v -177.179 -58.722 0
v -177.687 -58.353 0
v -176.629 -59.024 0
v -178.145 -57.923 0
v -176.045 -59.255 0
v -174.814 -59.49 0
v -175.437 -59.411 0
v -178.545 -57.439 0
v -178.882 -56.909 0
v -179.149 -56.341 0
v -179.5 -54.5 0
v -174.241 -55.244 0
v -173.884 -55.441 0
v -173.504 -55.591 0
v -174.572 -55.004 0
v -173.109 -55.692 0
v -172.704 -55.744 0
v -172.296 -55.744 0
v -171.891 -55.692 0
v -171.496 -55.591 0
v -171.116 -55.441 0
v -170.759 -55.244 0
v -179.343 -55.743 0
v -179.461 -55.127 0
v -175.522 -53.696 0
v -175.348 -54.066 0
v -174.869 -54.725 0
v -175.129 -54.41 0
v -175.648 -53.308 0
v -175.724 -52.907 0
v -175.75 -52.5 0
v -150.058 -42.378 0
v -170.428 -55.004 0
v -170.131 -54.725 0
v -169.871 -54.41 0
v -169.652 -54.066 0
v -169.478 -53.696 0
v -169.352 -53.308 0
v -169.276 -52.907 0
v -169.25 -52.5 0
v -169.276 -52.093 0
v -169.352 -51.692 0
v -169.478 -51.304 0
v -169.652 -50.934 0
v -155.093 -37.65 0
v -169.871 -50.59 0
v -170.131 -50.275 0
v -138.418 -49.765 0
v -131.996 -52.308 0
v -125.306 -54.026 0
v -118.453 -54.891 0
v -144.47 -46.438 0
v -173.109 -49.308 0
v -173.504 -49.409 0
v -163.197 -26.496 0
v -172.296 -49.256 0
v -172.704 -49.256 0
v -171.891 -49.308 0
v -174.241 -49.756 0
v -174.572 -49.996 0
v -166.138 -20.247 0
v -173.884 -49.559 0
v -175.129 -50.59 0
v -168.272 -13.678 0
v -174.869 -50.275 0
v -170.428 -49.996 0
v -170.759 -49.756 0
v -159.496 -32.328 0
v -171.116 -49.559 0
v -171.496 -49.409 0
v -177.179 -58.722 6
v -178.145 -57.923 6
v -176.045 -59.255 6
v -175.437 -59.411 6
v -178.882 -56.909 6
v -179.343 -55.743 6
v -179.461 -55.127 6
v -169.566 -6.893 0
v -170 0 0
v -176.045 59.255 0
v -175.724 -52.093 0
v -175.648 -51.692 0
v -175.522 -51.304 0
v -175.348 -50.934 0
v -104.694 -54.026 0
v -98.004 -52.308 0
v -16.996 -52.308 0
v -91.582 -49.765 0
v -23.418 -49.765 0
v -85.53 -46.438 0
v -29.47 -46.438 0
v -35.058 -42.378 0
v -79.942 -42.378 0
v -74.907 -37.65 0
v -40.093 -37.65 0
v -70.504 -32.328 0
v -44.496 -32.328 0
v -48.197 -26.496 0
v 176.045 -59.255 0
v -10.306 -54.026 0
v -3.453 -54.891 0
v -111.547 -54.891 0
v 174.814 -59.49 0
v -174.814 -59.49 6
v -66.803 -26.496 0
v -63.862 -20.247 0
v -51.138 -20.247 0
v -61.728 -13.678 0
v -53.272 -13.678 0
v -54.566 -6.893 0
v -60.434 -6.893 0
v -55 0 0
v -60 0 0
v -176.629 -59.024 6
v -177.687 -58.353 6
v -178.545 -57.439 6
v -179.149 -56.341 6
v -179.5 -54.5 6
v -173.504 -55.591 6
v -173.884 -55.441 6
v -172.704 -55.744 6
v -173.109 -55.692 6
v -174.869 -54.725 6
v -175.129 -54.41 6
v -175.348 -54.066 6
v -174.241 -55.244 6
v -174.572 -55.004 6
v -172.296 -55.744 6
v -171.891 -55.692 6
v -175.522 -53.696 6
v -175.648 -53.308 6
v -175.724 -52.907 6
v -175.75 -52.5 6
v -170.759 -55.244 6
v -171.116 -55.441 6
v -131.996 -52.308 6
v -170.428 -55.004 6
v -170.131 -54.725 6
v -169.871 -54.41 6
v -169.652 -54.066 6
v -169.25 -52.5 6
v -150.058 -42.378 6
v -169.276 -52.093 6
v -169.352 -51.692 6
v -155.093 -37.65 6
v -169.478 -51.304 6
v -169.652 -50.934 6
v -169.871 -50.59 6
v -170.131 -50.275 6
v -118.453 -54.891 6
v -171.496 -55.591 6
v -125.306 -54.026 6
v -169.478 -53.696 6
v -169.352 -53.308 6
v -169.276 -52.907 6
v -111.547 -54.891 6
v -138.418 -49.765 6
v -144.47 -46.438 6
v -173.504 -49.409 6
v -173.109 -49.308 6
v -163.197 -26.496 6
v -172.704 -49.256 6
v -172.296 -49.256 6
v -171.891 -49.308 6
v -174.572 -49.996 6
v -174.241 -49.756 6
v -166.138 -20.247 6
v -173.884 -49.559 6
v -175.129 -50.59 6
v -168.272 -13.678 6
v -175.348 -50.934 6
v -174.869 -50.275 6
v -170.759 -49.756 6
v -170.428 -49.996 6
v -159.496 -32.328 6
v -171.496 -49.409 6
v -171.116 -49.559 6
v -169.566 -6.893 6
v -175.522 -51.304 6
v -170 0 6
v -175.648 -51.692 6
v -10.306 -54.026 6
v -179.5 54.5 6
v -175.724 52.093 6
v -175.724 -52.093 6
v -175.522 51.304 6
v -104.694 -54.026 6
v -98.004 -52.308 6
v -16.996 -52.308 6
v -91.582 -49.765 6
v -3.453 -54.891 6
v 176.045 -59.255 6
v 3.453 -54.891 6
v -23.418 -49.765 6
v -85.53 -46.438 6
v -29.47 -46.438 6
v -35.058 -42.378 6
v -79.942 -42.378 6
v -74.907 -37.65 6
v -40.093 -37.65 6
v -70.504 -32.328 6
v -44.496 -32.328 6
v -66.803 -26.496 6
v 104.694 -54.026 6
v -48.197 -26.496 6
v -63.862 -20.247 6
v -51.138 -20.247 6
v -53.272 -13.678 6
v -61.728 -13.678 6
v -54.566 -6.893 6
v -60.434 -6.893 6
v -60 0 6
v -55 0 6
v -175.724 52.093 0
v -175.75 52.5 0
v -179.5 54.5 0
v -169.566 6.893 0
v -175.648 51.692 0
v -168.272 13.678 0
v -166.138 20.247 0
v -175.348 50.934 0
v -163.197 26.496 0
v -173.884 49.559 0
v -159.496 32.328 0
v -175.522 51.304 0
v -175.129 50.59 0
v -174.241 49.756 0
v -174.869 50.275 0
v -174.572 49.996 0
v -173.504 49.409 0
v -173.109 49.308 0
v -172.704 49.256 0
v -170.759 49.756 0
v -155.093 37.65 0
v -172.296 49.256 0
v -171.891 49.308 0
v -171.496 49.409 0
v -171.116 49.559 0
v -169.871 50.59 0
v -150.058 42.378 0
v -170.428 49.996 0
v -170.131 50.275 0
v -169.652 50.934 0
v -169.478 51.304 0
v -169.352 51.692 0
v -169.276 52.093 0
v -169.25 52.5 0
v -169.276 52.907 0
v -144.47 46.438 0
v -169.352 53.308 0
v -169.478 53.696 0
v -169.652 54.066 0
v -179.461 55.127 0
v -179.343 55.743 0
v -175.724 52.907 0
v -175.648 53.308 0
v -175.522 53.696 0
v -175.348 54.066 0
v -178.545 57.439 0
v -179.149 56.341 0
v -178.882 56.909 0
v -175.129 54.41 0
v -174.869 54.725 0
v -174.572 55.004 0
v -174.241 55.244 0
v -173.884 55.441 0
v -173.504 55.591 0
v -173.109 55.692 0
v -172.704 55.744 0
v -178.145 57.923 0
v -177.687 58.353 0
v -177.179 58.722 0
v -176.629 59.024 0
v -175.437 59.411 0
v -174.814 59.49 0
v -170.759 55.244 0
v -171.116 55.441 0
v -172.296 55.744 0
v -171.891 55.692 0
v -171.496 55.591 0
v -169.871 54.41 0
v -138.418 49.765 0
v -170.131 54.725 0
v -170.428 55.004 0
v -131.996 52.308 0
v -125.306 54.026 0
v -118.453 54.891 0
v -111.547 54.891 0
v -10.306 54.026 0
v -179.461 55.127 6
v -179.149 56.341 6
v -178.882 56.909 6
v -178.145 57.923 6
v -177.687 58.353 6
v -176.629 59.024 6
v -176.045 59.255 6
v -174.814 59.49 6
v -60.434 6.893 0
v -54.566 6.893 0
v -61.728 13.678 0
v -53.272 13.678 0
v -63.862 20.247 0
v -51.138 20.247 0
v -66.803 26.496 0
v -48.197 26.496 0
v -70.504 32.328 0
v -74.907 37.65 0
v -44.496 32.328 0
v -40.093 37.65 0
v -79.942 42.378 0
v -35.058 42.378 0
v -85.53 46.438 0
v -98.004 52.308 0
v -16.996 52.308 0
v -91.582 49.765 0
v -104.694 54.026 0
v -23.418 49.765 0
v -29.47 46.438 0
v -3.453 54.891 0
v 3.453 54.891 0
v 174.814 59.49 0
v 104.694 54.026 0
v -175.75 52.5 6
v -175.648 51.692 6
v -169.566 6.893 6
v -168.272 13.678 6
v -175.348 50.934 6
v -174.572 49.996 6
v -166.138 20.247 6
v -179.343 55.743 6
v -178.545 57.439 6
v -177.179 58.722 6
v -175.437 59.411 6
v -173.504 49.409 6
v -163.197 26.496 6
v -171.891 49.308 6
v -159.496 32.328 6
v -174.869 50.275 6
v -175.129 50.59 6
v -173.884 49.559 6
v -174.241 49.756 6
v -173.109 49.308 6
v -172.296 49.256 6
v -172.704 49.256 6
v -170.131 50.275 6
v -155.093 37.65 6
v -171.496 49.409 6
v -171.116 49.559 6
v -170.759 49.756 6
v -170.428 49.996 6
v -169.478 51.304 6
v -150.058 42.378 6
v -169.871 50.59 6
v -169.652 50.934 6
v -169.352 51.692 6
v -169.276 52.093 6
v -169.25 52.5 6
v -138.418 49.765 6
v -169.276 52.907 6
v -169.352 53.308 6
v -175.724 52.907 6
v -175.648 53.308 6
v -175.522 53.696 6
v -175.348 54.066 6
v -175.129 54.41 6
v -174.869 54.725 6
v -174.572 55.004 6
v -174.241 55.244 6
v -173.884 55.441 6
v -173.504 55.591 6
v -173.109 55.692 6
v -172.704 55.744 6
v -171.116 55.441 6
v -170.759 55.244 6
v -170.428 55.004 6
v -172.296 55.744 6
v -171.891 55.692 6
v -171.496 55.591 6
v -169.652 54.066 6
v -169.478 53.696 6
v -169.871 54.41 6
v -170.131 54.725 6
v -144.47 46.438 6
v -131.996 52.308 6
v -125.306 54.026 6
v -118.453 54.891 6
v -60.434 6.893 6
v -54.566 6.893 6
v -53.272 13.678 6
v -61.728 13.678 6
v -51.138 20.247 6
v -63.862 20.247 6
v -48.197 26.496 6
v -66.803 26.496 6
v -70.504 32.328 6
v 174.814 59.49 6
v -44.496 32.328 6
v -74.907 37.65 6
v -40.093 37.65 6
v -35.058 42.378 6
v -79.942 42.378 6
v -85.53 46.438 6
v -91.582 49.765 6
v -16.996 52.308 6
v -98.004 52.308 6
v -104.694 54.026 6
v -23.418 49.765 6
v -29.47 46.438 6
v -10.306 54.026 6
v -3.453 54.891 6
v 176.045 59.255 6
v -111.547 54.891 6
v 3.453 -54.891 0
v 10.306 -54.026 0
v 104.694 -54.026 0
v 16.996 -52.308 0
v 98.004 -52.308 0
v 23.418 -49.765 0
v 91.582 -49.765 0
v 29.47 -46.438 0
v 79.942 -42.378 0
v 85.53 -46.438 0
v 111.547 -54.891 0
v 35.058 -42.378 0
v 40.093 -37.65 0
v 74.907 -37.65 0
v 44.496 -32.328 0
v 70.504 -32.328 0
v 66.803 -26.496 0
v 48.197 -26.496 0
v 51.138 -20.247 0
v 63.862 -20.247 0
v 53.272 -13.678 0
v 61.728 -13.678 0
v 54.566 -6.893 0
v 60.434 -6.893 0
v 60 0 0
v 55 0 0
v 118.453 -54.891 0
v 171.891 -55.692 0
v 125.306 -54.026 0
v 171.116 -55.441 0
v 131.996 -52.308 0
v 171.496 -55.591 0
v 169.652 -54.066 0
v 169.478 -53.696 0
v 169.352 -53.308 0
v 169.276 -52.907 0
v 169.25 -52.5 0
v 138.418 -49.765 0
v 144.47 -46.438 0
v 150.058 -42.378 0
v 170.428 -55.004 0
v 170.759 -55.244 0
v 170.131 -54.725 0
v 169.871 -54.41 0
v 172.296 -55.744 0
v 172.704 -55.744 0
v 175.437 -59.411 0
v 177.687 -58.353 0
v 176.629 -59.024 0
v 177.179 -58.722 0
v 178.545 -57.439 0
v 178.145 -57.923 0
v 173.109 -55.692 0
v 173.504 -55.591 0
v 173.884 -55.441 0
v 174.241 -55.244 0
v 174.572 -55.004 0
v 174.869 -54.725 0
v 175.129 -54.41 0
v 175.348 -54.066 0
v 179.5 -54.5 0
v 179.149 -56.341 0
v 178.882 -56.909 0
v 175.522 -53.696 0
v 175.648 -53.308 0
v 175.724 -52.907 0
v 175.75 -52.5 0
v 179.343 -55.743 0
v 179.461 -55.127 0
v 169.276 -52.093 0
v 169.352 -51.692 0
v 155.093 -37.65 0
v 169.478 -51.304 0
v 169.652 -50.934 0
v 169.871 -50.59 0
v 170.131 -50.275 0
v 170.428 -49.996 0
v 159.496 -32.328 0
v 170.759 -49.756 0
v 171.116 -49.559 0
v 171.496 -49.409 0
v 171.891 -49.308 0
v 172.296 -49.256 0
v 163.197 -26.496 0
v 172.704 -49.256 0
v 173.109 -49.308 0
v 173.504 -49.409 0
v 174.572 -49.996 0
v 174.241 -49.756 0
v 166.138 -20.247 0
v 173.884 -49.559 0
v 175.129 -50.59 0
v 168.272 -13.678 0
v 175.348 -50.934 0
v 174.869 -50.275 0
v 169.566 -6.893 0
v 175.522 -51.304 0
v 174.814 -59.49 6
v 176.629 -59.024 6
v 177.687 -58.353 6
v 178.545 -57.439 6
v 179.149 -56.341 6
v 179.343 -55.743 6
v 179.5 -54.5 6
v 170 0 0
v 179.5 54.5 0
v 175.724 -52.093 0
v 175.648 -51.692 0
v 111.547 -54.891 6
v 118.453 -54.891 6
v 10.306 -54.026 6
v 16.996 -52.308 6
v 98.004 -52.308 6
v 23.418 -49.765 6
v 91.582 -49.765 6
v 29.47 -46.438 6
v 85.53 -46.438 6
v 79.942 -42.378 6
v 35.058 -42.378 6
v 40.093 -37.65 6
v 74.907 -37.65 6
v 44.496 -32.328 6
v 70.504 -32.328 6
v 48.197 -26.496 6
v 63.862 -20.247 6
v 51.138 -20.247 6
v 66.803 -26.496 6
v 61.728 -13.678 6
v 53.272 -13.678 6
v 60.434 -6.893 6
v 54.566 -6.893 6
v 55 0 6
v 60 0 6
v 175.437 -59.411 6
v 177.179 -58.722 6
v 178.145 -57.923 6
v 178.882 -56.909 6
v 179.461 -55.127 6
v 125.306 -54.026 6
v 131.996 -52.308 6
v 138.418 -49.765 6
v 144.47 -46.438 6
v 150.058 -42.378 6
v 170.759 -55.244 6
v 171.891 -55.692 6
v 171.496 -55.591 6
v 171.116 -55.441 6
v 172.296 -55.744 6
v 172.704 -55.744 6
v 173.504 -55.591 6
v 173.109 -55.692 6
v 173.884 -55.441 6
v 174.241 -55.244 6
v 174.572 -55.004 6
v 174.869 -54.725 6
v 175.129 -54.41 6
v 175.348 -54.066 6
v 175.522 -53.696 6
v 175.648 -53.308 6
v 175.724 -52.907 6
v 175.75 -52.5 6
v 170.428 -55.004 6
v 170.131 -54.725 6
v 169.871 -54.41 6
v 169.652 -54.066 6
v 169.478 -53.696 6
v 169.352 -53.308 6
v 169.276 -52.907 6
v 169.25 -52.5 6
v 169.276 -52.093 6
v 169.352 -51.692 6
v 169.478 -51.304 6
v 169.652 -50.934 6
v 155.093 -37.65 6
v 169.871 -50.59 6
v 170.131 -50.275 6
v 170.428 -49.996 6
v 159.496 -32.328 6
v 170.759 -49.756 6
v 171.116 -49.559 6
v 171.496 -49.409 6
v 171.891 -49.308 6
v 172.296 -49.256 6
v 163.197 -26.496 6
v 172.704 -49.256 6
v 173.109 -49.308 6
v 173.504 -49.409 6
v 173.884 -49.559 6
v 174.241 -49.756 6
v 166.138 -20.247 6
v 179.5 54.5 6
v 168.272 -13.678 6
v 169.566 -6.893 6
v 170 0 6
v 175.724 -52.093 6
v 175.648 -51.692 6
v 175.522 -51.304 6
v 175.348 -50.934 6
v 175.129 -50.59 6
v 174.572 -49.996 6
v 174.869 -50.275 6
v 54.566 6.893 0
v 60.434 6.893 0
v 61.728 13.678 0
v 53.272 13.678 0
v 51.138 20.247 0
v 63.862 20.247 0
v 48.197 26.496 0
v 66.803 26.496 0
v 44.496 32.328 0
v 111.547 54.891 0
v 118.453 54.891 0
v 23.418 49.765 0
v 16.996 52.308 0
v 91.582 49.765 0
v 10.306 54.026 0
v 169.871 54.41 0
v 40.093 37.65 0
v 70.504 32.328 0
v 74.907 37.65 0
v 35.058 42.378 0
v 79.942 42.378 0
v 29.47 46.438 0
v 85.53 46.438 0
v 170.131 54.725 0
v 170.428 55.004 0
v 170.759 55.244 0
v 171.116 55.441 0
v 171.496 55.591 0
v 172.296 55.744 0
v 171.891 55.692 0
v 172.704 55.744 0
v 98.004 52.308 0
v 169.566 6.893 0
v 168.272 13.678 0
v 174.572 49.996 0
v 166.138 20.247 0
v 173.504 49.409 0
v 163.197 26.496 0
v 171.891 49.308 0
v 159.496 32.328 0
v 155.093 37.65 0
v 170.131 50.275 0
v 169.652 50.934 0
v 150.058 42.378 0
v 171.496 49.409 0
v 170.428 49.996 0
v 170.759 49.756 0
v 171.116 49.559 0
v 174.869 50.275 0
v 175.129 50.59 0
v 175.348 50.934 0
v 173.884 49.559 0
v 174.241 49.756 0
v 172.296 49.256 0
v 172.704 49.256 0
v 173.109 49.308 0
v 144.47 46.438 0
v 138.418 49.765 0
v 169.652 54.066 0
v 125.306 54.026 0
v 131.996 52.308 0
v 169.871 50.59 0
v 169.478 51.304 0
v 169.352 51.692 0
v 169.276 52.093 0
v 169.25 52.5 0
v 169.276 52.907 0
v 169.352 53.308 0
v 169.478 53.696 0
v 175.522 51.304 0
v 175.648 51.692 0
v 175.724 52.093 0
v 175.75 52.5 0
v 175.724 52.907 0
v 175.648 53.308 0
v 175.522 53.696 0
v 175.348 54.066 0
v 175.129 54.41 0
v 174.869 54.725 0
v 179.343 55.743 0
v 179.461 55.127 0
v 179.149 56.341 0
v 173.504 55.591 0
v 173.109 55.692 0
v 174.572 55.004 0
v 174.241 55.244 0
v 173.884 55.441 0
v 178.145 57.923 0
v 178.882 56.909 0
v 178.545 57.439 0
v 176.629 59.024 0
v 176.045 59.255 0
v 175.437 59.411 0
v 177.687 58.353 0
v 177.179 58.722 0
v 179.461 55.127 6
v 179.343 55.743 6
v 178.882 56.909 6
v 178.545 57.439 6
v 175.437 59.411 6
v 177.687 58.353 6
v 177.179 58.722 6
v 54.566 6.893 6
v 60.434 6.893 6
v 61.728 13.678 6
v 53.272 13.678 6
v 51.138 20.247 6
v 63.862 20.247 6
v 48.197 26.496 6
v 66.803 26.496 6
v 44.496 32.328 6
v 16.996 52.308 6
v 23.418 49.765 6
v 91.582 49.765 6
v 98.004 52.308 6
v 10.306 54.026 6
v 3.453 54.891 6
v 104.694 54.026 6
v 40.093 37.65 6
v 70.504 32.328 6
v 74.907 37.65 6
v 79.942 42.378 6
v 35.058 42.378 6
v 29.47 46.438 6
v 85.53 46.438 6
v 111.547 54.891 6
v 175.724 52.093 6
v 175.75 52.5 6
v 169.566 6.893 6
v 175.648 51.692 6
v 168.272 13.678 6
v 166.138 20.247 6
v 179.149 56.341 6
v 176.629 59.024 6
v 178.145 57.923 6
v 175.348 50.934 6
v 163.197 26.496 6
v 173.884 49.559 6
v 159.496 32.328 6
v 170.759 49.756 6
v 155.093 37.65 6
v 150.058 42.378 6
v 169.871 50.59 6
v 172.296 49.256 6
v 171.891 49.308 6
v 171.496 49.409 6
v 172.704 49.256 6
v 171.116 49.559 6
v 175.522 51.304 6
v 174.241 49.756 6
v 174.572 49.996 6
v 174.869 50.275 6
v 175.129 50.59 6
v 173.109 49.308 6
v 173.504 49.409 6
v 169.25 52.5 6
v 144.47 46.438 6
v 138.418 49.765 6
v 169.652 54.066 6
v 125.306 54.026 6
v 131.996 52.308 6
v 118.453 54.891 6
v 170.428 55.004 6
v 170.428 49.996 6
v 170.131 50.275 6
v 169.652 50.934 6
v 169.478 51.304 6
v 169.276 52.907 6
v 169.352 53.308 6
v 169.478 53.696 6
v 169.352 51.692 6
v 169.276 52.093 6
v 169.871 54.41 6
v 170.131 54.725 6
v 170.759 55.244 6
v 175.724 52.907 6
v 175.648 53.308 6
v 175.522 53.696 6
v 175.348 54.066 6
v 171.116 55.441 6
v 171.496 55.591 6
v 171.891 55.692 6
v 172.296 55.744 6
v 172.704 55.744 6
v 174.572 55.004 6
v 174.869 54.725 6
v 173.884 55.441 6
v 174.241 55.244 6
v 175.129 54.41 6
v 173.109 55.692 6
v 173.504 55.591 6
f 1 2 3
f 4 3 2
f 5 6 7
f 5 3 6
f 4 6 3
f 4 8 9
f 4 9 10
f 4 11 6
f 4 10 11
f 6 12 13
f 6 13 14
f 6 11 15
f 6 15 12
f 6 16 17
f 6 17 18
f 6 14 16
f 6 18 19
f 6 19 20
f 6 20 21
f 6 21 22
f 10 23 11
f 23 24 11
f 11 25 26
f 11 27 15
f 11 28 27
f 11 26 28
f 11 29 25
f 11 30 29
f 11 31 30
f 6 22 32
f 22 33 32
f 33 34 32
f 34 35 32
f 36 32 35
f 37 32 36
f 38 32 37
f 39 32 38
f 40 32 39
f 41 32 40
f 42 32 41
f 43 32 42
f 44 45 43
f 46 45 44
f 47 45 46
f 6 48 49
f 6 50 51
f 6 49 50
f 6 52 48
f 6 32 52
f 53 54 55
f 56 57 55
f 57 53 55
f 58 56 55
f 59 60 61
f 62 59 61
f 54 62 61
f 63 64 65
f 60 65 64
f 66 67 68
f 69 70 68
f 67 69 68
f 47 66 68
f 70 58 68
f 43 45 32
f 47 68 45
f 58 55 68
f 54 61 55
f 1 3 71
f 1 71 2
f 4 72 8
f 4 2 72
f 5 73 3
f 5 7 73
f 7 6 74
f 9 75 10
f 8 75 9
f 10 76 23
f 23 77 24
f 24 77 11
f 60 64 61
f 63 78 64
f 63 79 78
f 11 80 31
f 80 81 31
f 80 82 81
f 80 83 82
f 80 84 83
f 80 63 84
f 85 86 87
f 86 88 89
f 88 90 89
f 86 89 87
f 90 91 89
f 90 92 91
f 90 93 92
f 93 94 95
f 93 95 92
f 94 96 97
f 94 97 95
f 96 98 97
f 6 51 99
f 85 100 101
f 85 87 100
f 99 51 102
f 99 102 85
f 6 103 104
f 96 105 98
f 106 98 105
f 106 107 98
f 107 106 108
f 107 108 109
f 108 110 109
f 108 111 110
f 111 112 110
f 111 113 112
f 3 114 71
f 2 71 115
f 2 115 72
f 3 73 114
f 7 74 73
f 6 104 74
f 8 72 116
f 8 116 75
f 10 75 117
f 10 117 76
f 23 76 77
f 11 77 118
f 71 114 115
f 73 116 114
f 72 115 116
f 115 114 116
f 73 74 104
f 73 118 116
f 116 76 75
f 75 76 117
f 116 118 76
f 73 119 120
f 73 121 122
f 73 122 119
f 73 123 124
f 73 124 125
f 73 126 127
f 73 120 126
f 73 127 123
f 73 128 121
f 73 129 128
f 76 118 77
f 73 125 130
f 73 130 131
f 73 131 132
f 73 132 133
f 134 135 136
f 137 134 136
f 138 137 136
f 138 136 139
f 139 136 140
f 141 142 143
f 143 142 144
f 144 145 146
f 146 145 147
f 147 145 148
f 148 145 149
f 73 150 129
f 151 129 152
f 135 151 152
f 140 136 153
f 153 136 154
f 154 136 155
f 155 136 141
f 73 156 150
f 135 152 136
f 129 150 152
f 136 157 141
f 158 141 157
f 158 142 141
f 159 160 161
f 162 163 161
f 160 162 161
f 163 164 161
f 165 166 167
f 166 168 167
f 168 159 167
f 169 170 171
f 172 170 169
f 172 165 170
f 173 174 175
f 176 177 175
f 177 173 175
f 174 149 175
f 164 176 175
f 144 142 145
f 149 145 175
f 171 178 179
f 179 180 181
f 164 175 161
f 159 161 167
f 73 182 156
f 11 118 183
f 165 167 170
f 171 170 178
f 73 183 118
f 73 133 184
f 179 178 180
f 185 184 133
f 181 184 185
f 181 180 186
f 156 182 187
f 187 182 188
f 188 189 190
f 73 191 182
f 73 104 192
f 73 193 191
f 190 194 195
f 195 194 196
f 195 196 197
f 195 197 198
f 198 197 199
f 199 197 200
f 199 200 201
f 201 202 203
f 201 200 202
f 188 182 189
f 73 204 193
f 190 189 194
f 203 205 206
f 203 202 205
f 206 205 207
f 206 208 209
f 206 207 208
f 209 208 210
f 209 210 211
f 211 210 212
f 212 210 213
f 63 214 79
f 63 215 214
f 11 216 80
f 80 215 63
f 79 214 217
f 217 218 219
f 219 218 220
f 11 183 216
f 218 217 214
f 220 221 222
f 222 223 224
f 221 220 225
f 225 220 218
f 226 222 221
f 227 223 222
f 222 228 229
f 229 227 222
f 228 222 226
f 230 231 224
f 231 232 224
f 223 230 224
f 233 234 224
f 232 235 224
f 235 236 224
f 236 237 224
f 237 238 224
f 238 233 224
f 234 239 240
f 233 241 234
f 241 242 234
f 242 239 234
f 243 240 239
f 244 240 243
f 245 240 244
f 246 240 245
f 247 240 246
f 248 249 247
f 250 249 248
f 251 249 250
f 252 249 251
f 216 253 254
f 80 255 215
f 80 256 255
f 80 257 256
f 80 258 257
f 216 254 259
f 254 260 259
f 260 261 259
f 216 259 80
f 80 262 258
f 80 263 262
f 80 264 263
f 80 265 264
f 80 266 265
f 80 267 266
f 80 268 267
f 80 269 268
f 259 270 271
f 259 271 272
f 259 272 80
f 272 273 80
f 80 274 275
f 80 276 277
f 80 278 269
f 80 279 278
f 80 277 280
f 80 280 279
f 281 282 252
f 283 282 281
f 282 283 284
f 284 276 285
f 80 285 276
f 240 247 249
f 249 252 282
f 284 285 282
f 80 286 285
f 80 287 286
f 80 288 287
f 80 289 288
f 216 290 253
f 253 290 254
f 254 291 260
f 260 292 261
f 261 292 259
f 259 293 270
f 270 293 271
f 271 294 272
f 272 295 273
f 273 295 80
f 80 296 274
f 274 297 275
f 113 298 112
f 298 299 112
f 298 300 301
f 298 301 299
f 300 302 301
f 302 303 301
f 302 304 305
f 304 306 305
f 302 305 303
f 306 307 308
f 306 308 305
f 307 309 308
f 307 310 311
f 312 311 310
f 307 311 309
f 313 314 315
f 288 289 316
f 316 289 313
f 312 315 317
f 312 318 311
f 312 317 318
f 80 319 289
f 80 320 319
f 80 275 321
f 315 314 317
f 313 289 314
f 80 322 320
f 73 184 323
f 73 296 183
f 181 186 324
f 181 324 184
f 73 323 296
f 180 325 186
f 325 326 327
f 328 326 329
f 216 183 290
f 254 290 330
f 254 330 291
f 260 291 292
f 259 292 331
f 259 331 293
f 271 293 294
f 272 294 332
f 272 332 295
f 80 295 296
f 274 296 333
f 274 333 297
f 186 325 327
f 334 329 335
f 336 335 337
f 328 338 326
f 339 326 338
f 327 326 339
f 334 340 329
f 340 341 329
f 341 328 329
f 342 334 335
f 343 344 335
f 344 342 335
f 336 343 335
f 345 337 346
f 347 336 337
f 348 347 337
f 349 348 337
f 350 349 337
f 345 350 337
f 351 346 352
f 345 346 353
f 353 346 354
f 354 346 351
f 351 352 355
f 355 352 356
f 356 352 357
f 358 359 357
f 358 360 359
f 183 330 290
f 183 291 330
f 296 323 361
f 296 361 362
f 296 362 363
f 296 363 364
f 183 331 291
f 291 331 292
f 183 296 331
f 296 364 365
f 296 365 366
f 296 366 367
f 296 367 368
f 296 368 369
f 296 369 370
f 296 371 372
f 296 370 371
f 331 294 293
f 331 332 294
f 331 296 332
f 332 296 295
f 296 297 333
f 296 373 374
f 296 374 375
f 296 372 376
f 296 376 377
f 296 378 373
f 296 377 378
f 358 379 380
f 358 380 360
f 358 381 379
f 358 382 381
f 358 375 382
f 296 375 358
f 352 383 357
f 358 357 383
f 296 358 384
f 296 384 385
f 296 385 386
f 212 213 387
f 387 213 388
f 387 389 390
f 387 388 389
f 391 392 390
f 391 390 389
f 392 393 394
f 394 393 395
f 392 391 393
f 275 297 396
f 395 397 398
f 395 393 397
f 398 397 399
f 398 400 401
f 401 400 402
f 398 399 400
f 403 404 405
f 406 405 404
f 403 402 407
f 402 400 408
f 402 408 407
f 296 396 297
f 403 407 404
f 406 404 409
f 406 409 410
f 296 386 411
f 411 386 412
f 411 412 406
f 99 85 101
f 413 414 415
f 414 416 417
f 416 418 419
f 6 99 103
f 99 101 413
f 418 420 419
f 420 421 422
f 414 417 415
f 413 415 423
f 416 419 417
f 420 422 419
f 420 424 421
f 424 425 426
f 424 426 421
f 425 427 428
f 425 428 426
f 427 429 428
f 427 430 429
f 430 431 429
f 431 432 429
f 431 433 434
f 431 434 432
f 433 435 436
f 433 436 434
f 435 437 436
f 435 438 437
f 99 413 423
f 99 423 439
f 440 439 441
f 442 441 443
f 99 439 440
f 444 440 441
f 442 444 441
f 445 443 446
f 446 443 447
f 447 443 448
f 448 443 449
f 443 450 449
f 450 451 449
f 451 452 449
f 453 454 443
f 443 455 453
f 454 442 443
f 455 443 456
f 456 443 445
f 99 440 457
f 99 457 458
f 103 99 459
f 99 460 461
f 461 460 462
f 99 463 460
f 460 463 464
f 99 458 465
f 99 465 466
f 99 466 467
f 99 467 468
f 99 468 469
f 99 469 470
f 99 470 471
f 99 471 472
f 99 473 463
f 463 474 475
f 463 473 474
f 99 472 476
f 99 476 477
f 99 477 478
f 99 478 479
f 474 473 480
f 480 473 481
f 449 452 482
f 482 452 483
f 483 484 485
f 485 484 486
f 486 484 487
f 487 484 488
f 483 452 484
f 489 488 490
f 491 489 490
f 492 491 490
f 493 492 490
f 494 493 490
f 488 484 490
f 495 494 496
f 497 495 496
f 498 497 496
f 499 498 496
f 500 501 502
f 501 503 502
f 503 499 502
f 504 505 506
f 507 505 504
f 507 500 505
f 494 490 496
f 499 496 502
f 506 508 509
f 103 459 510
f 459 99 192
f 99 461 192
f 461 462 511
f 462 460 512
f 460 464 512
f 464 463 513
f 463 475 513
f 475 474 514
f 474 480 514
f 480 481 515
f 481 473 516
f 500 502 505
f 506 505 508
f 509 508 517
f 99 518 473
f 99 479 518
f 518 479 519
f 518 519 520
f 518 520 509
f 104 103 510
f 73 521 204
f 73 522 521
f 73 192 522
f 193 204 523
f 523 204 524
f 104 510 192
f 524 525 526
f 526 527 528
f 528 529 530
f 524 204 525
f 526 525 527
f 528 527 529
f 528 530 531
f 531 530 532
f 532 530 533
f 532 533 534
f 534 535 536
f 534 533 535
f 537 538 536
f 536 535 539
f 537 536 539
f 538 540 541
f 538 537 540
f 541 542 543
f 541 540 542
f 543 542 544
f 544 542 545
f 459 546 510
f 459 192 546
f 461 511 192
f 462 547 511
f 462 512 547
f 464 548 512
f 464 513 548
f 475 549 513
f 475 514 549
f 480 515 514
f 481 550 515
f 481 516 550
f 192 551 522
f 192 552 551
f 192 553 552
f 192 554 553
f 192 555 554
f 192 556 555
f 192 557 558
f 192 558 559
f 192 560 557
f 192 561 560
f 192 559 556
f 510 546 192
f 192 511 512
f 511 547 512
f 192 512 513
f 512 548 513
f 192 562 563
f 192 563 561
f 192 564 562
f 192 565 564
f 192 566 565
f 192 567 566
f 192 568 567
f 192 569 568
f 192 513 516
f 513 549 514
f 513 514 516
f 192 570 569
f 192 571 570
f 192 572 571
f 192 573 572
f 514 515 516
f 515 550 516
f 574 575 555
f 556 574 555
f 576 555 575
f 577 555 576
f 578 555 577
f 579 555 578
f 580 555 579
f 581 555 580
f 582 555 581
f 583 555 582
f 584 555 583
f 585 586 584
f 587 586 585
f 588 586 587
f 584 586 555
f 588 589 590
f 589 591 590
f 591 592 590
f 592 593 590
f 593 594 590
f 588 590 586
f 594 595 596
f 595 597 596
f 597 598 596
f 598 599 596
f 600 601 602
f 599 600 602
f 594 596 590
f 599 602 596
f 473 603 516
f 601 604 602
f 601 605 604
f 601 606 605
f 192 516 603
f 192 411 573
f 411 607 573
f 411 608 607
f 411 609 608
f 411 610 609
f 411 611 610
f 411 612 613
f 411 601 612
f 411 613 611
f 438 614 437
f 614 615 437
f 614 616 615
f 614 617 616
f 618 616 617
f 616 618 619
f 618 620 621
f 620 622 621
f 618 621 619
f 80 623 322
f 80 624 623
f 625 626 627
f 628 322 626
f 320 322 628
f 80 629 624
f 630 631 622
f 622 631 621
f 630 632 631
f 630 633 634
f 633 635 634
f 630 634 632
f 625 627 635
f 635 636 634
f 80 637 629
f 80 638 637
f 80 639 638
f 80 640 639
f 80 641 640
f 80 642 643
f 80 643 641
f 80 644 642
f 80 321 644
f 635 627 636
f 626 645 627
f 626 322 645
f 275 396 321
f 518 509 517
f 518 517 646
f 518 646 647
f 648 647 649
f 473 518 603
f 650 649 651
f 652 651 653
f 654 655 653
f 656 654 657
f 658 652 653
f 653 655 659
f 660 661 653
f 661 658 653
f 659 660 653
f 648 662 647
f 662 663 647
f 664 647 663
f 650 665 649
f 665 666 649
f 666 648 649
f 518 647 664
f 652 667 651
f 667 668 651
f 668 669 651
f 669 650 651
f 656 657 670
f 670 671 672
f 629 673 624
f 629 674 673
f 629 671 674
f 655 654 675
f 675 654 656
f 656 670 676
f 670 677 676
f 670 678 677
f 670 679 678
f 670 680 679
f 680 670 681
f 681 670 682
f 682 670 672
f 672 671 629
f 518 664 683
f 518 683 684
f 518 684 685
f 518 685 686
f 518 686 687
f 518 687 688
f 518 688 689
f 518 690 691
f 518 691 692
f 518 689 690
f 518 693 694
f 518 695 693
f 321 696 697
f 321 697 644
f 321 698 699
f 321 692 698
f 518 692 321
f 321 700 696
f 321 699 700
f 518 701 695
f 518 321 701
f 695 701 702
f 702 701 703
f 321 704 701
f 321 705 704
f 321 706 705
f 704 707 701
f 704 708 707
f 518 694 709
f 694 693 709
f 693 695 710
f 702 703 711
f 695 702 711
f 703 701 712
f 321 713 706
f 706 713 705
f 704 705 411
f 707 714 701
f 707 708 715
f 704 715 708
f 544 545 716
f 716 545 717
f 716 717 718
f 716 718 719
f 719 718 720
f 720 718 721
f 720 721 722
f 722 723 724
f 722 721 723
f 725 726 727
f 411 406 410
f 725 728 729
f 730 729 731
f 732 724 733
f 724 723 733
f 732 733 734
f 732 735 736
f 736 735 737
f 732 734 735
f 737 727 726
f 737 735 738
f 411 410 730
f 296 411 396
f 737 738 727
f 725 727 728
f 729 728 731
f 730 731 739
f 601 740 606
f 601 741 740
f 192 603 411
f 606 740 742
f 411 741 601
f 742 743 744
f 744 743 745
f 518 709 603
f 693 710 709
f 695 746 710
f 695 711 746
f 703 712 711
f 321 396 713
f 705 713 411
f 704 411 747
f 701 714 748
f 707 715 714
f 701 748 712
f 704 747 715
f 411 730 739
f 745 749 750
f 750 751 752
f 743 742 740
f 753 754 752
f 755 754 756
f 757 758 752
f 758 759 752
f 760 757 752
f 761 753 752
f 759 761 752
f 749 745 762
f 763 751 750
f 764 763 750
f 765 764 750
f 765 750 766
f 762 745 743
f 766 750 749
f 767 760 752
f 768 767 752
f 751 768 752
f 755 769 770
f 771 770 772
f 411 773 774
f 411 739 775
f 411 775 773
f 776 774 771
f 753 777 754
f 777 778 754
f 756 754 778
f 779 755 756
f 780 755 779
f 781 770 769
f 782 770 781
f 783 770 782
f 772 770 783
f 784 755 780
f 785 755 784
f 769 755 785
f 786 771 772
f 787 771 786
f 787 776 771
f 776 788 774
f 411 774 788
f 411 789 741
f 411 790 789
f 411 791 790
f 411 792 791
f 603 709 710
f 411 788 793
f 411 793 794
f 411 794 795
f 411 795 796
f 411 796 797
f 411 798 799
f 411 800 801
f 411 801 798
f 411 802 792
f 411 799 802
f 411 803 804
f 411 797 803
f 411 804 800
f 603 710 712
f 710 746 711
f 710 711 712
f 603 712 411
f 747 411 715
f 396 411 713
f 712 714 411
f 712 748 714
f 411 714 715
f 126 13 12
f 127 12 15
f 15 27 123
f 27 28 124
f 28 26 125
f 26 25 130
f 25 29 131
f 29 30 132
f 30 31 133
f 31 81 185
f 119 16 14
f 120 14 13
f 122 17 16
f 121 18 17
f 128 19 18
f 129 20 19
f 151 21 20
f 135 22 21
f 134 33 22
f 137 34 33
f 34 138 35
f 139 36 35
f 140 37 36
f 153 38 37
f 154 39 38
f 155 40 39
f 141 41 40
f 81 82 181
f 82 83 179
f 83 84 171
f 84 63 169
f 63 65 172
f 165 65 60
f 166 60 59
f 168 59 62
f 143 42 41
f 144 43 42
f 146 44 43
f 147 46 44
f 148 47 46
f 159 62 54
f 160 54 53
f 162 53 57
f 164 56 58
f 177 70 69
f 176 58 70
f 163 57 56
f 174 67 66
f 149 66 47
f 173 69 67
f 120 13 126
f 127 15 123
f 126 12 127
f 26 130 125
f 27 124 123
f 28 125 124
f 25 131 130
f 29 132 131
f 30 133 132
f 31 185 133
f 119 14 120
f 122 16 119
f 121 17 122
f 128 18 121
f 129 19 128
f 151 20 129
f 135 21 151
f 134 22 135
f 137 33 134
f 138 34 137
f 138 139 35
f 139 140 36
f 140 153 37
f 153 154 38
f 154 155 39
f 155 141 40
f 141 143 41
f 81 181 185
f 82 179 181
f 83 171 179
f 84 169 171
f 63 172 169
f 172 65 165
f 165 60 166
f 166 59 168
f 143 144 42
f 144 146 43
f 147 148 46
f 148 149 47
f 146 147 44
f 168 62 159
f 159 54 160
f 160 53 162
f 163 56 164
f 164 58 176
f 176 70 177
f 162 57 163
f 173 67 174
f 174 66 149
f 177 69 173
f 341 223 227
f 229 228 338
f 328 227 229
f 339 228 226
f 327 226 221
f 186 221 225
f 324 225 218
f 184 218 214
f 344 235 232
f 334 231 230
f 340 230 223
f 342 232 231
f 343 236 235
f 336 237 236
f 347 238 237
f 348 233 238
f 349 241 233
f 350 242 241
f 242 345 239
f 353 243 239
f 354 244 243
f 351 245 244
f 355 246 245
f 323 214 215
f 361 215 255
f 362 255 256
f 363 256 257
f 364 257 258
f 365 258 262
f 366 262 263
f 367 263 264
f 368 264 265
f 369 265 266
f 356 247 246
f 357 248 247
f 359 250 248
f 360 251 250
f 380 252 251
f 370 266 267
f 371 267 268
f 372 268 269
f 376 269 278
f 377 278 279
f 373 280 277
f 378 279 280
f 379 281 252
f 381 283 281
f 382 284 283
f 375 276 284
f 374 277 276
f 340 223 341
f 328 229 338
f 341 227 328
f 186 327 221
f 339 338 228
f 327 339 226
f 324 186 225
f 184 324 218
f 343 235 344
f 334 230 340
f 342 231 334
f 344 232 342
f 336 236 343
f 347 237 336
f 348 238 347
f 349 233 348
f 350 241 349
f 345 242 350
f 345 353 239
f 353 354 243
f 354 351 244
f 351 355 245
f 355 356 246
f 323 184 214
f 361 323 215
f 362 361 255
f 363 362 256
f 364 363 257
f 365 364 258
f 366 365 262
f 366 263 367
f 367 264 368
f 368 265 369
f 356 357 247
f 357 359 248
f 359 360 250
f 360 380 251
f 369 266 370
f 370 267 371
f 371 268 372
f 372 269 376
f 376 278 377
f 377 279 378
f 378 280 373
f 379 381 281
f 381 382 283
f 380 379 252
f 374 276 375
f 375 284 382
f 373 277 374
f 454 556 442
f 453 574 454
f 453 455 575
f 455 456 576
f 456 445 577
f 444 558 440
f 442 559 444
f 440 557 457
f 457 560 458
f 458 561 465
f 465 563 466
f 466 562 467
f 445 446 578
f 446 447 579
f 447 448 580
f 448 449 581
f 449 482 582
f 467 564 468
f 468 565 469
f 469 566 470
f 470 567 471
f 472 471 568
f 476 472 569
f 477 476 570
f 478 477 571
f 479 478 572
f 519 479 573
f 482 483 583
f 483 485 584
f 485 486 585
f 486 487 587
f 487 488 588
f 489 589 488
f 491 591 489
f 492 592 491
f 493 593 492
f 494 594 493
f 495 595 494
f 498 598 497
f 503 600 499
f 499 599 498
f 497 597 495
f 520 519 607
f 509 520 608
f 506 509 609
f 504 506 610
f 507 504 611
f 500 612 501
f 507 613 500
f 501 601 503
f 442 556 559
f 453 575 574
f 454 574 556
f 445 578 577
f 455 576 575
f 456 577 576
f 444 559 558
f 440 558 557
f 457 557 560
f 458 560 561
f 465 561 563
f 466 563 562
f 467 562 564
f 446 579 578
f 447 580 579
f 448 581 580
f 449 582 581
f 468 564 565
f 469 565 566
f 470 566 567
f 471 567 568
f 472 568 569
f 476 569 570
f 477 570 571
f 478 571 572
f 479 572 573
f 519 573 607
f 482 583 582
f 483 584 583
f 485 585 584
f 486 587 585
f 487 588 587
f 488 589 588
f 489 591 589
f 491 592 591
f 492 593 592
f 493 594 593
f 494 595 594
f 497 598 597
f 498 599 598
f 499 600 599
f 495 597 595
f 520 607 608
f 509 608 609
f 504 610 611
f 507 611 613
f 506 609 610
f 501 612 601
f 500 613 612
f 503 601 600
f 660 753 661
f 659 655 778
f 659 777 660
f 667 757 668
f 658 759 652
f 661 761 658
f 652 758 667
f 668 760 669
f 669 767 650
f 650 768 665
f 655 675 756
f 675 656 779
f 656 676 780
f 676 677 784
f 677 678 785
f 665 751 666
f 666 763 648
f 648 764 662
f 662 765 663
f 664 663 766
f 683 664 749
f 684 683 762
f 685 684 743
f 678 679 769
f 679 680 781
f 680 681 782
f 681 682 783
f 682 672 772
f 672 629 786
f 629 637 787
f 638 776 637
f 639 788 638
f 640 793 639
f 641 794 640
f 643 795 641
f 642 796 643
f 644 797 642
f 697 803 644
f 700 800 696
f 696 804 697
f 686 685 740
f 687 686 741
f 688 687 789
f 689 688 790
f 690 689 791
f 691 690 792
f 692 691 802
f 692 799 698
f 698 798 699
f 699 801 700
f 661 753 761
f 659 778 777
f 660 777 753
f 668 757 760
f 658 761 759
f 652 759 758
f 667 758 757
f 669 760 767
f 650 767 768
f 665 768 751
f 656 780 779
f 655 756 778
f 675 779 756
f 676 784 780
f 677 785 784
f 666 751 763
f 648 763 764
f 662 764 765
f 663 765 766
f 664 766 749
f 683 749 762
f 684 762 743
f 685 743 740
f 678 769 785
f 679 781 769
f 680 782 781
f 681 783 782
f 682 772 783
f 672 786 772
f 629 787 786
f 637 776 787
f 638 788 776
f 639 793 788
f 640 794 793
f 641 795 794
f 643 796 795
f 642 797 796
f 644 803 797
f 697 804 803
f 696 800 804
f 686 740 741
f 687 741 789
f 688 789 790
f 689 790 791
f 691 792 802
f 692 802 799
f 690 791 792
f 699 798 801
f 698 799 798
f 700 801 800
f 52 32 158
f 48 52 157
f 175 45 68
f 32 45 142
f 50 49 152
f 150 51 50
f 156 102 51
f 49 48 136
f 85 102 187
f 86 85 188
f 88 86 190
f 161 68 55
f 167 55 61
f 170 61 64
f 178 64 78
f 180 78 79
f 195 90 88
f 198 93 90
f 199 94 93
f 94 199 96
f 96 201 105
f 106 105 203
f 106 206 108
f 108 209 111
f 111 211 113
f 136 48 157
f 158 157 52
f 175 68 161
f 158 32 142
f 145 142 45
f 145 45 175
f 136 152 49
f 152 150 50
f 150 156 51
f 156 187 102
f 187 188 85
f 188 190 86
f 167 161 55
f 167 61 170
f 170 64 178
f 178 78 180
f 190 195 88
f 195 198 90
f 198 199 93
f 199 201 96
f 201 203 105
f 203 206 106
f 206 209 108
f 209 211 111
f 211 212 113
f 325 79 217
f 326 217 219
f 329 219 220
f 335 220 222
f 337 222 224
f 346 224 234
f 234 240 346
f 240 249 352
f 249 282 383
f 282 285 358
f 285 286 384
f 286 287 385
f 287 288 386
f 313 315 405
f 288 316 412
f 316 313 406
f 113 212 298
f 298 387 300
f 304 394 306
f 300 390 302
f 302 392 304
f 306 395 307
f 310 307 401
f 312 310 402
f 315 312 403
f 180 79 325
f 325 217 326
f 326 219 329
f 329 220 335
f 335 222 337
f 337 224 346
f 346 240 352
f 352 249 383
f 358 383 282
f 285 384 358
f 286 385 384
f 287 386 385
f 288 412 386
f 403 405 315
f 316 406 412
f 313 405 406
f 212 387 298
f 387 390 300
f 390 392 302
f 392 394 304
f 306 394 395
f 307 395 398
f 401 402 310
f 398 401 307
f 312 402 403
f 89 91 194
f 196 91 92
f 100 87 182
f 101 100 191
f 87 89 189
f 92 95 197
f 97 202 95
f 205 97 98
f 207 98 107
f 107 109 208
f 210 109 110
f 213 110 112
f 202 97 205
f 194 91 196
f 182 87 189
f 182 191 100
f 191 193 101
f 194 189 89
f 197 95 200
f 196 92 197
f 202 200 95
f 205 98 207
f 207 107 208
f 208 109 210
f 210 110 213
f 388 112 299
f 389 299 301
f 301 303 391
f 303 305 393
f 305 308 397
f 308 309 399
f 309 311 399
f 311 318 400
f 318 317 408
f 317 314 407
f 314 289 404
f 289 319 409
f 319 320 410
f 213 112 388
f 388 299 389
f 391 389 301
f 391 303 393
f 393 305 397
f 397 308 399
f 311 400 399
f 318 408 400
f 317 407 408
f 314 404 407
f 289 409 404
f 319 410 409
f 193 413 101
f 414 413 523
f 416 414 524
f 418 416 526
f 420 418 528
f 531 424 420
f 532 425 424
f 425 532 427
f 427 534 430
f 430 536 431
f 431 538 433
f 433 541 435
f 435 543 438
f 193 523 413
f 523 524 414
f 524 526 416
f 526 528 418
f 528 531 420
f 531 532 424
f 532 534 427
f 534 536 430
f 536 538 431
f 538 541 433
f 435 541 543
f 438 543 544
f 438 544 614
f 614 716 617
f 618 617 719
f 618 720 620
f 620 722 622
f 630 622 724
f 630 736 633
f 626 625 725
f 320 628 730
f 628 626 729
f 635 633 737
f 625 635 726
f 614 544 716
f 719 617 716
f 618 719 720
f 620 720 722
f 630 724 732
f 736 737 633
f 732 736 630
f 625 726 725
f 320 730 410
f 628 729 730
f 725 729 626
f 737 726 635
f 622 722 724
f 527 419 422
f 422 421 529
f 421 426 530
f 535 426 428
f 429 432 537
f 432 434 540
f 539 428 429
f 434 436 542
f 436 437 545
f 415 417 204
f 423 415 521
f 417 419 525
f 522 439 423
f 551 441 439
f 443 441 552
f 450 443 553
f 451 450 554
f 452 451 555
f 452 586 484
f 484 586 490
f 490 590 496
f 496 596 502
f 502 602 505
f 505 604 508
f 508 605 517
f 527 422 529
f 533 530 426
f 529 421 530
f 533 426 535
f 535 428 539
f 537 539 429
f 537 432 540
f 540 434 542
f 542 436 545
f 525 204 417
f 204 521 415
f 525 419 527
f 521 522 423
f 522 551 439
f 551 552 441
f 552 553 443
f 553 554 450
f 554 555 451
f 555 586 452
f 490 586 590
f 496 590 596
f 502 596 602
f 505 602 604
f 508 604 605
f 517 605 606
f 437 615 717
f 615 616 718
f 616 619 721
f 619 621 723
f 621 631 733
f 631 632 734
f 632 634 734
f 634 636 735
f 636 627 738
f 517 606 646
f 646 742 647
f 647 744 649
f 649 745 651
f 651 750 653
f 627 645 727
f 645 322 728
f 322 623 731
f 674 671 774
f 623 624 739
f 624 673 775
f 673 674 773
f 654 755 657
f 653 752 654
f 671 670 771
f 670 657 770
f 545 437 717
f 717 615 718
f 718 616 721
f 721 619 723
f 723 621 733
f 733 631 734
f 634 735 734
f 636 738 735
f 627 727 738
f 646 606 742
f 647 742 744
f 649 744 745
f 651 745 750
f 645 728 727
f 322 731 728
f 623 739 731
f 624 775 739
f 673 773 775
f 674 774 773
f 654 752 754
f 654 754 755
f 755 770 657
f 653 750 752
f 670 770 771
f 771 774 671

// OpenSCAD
$fn = 50;

difference() {
	union() {
		hull() {
			translate(v = [-174.5, 54.5, 0]) {
				cylinder(h = 6, r = 5);
			}
			translate(v = [174.5, 54.5, 0]) {
				cylinder(h = 6, r = 5);
			}
			translate(v = [-174.5, -54.5, 0]) {
				cylinder(h = 6, r = 5);
			}
			translate(v = [174.5, -54.5, 0]) {
				cylinder(h = 6, r = 5);
			}
		}
	}
	union() {
		translate(v = [-172.5, -52.5, -100.0]) {
			cylinder(h = 200, r = 3.25);
		}
		translate(v = [-172.5, 52.5, -100.0]) {
			cylinder(h = 200, r = 3.25);
		}
		translate(v = [172.5, -52.5, -100.0]) {
			cylinder(h = 200, r = 3.25);
		}
		translate(v = [172.5, 52.5, -100.0]) {
			cylinder(h = 200, r = 3.25);
		}
		translate(v = [-172.5, -52.5, -100.0]) {
			cylinder(h = 200, r = 1.8);
		}
		translate(v = [-172.5, 52.5, -100.0]) {
			cylinder(h = 200, r = 1.8);
		}
		translate(v = [172.5, -52.5, -100.0]) {
			cylinder(h = 200, r = 1.8);
		}
		translate(v = [172.5, 52.5, -100.0]) {
			cylinder(h = 200, r = 1.8);
		}
		translate(v = [-115.0, 0, 0.0]) {
			cylinder(h = 6, r = 55.0);
		}
		cylinder(h = 6, r = 55.0);
		translate(v = [115.0, 0, 0.0]) {
			cylinder(h = 6, r = 55.0);
		}
	}
}
